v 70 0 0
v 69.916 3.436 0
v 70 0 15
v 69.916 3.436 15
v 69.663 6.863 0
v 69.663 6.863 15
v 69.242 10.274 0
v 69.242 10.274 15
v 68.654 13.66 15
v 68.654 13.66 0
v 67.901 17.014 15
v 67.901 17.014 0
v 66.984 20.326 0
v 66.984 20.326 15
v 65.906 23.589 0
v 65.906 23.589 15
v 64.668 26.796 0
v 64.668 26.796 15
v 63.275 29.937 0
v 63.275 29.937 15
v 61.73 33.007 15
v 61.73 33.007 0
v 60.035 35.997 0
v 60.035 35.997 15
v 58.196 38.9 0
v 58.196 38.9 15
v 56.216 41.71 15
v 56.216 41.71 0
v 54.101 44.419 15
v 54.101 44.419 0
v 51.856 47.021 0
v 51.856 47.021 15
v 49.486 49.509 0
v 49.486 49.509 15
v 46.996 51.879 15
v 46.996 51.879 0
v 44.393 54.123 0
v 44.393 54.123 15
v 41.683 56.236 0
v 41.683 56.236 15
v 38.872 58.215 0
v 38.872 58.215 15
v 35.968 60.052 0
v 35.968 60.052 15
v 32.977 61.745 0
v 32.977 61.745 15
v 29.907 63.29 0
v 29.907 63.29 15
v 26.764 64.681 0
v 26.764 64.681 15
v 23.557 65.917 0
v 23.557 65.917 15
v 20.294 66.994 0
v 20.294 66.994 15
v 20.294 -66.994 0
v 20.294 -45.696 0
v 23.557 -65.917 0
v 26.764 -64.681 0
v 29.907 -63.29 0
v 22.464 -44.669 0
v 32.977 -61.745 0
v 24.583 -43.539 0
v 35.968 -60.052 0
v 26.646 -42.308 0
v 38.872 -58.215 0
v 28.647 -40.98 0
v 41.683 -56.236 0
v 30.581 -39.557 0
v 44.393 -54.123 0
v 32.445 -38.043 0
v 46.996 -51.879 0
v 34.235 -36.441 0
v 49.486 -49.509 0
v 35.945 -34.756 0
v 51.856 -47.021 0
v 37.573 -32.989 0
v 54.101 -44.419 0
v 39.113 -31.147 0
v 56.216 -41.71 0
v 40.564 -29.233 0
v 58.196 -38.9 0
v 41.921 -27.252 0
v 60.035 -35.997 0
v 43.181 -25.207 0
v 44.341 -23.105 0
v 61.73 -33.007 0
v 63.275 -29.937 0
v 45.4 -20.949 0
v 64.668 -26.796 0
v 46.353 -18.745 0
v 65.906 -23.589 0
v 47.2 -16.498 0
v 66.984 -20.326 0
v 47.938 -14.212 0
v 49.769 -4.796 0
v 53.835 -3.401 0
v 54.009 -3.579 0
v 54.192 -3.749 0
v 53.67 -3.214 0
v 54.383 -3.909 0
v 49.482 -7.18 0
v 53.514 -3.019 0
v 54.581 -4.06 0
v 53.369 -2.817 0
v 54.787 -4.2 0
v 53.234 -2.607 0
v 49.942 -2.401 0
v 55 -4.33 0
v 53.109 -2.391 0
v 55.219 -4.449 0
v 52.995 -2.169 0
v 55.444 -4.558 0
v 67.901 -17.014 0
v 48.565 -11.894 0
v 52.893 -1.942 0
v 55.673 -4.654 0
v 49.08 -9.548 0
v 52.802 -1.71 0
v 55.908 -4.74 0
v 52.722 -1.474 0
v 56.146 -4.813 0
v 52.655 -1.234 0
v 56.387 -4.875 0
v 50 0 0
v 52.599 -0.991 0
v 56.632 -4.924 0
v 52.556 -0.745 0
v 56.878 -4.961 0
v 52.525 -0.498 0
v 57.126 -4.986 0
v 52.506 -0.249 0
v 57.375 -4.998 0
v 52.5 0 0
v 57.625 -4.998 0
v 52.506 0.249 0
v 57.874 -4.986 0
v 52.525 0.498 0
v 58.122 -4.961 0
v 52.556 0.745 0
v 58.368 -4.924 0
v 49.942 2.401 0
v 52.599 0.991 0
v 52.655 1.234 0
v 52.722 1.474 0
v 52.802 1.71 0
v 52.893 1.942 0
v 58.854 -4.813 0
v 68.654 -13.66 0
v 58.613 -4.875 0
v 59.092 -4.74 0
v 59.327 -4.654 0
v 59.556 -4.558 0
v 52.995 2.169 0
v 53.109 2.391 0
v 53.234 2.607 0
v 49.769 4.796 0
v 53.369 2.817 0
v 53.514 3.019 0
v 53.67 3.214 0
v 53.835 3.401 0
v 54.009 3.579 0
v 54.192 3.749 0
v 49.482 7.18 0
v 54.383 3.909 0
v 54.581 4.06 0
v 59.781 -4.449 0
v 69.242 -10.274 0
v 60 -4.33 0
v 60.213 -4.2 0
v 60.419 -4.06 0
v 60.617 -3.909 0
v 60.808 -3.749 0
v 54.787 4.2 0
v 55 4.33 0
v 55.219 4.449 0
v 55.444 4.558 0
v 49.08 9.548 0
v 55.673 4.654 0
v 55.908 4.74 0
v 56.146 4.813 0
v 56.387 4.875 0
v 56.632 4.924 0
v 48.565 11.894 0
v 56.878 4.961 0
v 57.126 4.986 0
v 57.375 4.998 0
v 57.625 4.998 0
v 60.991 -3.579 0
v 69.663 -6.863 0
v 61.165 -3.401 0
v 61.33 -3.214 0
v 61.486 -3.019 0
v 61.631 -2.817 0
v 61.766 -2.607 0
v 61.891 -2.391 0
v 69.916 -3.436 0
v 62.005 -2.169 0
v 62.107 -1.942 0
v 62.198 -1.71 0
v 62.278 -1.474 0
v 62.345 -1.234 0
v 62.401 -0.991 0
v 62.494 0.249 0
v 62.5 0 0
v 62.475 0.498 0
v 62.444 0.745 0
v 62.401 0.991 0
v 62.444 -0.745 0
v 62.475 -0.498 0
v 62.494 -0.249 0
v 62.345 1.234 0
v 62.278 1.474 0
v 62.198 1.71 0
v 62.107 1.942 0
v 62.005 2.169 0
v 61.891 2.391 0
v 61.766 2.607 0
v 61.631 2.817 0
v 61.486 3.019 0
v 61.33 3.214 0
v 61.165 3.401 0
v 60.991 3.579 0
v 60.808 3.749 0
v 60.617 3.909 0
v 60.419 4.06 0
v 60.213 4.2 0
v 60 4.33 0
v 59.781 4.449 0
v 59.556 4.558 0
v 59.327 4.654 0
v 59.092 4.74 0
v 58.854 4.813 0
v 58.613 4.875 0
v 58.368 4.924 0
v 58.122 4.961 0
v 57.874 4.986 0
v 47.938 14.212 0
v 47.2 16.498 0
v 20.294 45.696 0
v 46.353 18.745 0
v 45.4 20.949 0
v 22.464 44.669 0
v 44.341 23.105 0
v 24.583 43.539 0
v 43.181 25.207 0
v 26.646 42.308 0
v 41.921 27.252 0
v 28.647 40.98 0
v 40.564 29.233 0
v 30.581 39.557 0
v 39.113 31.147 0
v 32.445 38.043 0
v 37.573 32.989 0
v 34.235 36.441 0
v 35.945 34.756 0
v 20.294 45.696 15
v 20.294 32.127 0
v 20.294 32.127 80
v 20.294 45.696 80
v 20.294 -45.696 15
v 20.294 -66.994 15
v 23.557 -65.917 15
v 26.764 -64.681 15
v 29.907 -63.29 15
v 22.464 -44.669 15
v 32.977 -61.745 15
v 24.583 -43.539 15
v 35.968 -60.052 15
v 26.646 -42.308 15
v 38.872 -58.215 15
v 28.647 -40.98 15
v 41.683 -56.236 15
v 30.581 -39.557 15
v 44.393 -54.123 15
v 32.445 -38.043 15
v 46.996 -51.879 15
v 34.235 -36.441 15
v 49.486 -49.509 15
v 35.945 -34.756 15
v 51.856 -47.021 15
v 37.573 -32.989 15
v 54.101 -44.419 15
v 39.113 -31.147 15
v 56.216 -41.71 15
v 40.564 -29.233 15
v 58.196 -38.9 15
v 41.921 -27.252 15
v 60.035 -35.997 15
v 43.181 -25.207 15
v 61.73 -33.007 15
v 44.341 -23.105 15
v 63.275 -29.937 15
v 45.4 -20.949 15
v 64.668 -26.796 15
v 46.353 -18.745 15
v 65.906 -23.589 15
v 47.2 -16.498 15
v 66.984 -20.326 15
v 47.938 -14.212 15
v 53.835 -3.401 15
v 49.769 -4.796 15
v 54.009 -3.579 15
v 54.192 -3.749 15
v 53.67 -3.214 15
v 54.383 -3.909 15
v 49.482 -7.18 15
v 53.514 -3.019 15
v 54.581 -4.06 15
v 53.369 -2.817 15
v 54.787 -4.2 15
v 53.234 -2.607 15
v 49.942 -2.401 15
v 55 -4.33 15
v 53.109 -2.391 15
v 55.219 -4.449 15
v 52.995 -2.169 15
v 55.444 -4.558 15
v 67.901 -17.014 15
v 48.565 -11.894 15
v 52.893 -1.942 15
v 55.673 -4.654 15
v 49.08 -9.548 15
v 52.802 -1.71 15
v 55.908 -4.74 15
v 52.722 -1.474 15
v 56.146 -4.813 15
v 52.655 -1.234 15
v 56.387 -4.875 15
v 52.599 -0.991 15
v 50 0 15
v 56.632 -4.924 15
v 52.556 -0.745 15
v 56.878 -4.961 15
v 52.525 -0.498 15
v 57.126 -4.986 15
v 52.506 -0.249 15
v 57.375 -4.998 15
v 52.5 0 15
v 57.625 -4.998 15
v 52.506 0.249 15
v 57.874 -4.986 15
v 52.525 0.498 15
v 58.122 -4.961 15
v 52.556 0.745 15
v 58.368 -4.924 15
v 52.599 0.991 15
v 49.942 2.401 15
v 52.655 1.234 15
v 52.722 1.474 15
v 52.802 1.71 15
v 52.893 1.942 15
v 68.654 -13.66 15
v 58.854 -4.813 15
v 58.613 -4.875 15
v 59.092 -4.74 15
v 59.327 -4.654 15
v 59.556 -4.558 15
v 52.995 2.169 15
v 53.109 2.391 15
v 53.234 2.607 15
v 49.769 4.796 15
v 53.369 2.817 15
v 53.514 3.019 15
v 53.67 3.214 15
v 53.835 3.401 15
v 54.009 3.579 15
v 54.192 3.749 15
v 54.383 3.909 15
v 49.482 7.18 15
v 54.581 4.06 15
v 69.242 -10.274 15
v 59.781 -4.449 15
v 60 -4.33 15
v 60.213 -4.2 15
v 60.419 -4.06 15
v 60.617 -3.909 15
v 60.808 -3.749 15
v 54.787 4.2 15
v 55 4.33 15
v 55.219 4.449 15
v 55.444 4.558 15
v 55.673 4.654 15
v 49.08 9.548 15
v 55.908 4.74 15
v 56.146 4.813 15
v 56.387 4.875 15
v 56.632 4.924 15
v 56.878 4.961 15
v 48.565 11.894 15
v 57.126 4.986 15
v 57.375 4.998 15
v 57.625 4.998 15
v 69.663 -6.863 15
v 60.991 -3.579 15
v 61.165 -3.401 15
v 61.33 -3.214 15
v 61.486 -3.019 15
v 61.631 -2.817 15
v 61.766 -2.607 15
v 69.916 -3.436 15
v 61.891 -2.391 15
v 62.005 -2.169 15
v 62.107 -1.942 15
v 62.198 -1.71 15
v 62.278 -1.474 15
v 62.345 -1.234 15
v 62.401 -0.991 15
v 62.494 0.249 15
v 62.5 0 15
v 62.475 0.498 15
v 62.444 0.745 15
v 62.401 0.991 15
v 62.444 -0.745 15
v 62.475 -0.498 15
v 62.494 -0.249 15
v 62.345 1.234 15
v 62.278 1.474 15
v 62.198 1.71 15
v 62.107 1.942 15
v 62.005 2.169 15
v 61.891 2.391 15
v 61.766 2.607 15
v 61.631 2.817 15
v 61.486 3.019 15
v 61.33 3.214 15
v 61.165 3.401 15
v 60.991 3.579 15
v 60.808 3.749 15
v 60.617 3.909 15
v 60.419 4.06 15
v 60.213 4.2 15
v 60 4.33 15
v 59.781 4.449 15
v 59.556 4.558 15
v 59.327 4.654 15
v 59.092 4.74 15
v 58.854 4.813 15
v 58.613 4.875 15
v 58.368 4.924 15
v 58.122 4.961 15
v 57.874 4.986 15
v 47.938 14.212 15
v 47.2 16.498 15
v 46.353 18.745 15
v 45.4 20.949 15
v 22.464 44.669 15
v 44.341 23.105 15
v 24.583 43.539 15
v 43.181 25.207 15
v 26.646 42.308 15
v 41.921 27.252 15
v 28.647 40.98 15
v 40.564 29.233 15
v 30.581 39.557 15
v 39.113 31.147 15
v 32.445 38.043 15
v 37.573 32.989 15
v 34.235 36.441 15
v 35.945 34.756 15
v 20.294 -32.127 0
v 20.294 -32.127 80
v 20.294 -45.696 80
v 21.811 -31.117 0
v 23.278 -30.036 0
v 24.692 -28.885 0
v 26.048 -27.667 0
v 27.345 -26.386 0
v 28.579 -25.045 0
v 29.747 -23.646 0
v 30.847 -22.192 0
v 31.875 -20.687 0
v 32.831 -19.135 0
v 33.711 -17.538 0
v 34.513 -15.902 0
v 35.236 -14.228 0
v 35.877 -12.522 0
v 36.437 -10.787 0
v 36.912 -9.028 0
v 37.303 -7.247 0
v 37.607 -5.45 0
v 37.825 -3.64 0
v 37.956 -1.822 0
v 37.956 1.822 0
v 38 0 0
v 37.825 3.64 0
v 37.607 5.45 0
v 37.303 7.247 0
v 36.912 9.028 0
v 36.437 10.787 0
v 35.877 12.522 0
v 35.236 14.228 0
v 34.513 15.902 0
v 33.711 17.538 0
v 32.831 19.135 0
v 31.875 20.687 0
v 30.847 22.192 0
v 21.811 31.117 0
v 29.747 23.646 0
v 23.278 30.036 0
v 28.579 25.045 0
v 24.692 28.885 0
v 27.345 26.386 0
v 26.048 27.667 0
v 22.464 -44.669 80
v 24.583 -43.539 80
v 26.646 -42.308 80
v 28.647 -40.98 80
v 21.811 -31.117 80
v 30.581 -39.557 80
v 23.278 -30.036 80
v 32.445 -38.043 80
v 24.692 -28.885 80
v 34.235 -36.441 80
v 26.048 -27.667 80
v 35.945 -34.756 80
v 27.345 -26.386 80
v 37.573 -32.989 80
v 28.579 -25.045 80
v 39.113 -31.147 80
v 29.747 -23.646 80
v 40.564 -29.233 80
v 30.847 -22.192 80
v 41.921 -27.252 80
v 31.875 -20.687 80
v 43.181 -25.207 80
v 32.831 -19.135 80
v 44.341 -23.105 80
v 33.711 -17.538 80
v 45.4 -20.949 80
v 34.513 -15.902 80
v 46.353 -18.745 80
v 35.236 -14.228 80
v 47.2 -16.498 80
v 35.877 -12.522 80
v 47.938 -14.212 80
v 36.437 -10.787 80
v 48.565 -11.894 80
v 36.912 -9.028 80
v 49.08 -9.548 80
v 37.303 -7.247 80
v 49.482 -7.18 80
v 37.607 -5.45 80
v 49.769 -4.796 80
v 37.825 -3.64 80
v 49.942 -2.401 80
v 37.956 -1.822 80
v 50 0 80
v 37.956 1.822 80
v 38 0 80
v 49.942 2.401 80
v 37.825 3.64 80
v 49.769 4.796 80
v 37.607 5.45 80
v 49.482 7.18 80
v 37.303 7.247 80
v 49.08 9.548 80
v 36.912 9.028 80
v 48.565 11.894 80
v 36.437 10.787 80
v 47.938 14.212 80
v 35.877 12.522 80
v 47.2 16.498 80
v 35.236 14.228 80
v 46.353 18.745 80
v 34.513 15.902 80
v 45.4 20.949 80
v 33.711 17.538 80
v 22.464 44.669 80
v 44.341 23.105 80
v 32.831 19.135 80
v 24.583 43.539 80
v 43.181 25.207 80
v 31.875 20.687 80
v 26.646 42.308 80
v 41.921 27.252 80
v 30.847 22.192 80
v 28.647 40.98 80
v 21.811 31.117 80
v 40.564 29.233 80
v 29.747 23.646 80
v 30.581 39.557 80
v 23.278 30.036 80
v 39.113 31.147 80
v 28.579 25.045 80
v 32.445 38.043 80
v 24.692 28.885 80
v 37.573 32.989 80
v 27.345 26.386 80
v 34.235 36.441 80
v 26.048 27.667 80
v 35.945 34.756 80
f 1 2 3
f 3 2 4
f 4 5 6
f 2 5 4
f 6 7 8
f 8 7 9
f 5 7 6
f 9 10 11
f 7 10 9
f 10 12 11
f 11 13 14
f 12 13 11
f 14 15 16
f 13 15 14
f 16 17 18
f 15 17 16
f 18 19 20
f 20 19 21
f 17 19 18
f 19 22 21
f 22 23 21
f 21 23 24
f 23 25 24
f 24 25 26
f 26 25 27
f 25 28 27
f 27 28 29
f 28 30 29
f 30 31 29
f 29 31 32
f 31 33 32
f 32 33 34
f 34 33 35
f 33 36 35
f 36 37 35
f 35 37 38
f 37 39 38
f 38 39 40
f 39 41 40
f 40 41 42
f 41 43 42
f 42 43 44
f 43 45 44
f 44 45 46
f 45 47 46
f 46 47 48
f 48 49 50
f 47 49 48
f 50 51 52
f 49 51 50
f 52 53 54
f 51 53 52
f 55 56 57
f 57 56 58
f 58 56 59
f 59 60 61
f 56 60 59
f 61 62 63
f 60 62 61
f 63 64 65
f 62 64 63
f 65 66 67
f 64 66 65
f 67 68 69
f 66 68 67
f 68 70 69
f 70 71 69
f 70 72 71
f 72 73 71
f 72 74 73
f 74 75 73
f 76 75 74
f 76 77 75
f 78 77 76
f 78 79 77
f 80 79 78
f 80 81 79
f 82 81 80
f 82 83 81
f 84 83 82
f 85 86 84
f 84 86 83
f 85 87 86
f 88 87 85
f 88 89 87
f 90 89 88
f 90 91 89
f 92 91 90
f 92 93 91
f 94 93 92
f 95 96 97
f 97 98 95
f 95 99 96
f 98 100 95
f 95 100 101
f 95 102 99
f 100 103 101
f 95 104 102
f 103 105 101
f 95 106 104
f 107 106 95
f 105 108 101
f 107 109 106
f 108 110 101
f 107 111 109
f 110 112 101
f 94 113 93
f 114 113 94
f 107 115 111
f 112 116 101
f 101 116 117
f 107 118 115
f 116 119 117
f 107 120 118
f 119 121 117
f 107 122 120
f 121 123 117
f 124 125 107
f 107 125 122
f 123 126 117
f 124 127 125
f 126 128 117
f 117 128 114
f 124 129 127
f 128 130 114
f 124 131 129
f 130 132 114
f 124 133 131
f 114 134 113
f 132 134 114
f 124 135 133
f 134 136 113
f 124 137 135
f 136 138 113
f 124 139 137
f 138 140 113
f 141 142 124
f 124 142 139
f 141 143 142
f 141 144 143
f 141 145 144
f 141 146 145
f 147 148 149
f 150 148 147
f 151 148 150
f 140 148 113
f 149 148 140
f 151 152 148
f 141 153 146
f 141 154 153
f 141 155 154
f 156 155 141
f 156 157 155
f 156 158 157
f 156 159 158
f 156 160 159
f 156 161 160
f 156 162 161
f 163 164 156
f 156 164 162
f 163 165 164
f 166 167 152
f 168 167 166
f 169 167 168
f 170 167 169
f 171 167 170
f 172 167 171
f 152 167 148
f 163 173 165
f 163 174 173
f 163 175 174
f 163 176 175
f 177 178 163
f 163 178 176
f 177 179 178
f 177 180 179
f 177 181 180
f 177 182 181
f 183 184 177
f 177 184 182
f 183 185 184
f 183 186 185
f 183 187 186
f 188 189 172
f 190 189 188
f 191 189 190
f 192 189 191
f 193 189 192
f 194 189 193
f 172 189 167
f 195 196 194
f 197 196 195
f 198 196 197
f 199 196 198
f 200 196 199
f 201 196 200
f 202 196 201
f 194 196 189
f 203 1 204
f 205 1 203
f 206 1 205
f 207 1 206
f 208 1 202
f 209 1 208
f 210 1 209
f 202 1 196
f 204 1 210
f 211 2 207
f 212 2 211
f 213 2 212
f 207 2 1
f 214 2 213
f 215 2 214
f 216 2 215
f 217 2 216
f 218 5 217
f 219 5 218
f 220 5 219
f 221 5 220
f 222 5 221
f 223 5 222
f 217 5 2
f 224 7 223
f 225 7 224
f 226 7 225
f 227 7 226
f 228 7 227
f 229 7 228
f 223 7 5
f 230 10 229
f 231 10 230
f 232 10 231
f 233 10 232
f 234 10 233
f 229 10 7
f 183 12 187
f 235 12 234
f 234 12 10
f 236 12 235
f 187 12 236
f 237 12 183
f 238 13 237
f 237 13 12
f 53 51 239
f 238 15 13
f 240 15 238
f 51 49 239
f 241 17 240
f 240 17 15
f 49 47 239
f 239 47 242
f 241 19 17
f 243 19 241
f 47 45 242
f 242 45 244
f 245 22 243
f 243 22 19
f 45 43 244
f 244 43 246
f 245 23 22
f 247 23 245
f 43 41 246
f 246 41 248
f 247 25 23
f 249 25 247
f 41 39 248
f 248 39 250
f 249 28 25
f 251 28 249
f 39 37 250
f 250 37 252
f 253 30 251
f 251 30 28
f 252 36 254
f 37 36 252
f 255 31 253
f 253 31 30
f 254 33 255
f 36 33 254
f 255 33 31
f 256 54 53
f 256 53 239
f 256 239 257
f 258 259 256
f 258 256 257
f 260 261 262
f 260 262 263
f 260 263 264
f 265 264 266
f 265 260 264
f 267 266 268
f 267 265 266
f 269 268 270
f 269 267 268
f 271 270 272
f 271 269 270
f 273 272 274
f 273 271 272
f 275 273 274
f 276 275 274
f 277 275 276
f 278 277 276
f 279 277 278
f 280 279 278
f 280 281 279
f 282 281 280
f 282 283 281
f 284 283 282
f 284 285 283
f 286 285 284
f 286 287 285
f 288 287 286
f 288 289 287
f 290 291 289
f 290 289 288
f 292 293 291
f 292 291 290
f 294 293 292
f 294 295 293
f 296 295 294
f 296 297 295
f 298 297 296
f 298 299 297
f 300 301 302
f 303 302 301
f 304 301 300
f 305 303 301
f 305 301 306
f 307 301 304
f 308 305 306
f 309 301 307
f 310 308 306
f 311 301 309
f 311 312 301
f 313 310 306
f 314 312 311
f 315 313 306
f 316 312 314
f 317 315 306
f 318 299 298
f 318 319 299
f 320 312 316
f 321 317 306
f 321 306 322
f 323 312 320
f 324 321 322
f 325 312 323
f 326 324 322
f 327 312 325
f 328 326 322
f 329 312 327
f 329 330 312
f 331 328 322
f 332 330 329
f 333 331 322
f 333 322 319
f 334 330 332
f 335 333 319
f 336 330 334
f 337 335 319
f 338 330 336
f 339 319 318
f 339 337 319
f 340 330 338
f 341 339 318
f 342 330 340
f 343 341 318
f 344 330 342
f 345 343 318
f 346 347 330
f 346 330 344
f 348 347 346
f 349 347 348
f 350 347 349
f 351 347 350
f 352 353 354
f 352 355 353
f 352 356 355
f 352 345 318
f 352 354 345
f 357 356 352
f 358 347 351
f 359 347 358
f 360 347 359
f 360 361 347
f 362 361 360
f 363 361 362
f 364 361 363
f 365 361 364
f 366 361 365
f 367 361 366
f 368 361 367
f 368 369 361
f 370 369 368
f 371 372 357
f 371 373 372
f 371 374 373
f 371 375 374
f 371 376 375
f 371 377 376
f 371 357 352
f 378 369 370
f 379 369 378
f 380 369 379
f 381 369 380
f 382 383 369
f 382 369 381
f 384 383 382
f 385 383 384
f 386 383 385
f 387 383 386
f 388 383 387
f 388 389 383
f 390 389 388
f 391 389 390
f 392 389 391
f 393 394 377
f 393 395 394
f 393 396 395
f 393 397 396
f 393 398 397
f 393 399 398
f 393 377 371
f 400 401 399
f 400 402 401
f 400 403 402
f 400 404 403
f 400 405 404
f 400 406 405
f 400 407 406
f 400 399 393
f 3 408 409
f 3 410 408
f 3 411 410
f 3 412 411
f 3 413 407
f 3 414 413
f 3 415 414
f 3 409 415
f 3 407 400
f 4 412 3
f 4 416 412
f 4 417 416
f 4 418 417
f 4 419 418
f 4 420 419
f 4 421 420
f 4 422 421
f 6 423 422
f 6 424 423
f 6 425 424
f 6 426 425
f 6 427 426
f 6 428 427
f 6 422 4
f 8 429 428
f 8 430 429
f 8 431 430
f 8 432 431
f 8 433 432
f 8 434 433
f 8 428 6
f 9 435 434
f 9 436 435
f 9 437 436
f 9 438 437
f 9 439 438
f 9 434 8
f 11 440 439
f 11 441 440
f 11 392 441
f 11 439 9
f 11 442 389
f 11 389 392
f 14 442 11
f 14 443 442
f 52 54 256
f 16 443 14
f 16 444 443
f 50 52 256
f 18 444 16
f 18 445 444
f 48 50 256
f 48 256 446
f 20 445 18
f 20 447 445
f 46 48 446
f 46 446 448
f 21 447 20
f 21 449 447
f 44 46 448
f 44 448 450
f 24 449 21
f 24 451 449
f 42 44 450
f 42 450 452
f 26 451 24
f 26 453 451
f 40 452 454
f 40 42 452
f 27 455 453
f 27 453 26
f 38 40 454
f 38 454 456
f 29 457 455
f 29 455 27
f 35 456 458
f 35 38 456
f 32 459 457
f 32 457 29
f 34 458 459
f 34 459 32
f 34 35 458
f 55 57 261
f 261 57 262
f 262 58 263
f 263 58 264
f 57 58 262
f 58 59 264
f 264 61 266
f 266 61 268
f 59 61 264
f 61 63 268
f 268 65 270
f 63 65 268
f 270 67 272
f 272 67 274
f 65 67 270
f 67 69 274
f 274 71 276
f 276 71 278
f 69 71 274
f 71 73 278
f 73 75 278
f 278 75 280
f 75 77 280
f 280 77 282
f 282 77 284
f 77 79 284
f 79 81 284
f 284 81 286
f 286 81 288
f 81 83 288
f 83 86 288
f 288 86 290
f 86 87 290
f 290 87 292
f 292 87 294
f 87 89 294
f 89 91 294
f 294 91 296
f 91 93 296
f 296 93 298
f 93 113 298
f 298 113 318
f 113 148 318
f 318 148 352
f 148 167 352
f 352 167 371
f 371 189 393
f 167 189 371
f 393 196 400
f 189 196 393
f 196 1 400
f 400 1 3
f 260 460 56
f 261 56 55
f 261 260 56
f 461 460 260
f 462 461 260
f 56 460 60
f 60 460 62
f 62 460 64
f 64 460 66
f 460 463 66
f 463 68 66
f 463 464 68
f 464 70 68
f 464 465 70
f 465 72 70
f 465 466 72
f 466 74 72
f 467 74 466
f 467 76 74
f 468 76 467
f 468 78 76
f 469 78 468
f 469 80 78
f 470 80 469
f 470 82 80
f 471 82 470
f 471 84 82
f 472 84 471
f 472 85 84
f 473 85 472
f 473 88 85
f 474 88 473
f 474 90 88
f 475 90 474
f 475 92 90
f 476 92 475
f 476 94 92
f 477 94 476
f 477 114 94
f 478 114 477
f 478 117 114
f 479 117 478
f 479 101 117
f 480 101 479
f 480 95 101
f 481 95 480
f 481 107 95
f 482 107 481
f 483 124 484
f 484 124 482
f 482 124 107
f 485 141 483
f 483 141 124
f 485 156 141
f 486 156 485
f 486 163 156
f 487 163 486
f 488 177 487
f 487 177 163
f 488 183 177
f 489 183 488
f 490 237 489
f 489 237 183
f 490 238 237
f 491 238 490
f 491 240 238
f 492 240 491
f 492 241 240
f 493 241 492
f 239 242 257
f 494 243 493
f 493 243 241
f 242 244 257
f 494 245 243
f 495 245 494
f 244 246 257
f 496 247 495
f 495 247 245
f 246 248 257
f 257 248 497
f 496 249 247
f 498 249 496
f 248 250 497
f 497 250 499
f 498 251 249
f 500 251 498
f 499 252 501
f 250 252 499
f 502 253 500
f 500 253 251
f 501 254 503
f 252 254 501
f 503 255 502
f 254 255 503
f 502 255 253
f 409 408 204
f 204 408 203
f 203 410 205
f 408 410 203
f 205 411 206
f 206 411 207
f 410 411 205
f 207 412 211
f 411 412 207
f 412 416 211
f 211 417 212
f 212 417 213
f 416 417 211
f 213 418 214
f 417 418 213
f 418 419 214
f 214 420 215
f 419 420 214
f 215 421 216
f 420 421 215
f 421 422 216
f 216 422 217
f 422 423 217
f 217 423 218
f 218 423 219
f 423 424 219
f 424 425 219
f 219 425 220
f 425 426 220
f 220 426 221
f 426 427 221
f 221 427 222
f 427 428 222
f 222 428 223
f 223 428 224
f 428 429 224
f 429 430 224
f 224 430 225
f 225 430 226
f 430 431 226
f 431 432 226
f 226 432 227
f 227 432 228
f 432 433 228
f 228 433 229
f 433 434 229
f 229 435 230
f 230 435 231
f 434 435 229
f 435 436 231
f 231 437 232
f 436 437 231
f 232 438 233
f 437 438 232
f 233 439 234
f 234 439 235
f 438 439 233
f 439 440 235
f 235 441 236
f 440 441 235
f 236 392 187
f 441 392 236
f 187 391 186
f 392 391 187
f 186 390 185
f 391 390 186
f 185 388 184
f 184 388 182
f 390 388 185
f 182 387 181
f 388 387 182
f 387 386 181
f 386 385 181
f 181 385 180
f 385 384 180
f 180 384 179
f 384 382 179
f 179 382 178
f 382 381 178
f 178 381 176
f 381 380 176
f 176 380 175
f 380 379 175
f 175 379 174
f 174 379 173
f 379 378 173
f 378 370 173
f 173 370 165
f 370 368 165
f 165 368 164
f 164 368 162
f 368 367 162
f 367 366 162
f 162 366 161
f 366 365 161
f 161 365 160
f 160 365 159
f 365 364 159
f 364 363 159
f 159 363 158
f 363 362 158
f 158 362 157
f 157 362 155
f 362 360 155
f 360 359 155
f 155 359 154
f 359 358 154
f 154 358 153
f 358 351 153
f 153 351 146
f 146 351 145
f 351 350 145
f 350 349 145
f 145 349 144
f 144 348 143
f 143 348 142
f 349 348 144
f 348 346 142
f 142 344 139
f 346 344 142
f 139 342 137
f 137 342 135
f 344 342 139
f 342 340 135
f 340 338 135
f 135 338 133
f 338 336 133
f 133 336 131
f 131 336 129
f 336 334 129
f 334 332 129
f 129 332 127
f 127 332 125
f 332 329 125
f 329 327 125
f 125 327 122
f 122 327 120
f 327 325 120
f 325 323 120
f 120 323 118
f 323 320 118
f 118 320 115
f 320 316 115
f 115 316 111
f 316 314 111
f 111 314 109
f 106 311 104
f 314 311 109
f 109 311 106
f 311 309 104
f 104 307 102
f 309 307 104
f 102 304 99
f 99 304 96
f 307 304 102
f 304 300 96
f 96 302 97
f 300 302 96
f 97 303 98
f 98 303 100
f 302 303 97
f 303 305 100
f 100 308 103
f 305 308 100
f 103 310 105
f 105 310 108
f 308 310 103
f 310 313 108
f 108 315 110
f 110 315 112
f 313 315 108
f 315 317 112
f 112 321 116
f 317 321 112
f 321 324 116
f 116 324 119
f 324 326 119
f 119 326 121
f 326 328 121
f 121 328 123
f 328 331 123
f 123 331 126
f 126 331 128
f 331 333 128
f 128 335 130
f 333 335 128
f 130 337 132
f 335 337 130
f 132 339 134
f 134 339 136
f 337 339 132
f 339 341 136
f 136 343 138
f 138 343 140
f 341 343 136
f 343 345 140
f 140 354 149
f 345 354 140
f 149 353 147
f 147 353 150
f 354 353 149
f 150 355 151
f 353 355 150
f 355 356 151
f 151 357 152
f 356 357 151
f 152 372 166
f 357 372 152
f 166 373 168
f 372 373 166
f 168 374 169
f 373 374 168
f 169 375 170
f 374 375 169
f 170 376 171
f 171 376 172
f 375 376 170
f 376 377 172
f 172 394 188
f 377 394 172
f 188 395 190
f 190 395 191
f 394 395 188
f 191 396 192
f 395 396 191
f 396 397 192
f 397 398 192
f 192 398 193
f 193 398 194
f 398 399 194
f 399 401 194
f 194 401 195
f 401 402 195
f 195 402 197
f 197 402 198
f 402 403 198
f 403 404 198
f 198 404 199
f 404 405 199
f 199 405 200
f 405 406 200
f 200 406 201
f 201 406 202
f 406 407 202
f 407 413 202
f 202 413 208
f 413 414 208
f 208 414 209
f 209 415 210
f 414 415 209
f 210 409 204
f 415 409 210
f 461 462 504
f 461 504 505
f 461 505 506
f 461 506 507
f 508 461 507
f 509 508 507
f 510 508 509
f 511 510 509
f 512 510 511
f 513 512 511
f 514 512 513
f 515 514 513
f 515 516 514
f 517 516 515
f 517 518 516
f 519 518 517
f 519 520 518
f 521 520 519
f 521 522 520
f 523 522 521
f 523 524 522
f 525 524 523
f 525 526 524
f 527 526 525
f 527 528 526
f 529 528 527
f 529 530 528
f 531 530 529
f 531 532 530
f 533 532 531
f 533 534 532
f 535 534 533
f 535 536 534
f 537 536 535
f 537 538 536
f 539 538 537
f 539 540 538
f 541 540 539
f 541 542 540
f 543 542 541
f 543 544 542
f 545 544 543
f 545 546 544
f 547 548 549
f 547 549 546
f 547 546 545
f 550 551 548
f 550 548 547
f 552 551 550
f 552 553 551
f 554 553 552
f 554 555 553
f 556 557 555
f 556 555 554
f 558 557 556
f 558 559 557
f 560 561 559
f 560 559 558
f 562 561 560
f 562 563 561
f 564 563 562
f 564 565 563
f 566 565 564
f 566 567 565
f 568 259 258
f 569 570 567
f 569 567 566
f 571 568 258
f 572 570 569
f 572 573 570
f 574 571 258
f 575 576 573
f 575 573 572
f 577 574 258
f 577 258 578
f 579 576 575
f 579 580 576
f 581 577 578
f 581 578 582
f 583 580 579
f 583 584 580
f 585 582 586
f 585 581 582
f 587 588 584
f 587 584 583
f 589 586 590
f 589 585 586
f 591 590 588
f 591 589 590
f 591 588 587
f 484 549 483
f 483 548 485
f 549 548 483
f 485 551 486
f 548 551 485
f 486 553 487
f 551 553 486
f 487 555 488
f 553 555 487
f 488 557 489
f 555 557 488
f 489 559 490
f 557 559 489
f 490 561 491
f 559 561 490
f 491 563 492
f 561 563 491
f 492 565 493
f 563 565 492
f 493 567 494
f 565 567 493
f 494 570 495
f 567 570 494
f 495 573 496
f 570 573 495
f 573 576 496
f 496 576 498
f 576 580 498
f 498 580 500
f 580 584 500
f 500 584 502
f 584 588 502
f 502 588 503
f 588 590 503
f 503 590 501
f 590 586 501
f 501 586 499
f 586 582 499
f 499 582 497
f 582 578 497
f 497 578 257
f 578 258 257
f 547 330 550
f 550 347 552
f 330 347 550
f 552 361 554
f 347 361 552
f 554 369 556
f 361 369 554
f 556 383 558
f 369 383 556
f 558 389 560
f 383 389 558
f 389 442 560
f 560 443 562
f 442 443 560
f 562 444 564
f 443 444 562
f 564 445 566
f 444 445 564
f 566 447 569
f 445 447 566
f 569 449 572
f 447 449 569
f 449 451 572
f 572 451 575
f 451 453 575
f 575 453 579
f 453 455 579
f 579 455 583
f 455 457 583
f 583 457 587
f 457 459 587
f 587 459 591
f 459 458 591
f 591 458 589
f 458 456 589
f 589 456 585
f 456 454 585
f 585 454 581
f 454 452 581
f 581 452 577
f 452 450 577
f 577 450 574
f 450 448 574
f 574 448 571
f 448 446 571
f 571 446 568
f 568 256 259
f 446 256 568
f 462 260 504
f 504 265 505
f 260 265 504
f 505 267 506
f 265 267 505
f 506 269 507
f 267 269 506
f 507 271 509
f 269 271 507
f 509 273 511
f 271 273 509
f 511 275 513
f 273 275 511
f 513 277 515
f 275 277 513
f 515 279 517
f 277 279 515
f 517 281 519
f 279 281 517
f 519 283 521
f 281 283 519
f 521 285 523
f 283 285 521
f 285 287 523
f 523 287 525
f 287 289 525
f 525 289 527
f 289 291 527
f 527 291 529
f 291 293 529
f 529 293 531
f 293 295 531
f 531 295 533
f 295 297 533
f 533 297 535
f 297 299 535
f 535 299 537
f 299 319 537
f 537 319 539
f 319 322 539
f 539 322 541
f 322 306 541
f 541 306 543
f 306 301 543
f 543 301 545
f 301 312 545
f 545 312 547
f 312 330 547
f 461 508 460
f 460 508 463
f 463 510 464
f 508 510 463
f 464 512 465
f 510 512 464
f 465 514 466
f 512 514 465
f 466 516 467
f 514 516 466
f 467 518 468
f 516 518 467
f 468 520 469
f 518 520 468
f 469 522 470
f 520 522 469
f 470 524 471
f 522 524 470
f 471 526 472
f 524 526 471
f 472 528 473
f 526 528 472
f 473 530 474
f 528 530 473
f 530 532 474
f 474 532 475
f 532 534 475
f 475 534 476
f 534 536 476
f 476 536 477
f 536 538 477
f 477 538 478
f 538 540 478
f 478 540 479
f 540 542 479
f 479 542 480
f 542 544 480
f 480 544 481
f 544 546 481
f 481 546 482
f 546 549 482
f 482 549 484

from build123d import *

# Parameters (mm, degrees)
SKETCH_R        = 70
PAD_DEPTH       = 15
SKETCH001_R     = 50
PAD001_DEPTH    = 80
SKETCH002_R     = 38
POCKET_DEPTH    = 150
SKETCH003_R     = 5
POCKET001_DEPTH = 100
SKETCH004_W     = 113.045652
SKETCH004_H     = 208.901421
POCKET002_DEPTH = 150


with BuildPart() as part:
    # Sketch → Pad (new body)
    with BuildSketch(Plane.XY):
        Circle(SKETCH_R)
    extrude(amount=PAD_DEPTH)

    # Sketch001 → Pad001 (join)
    with BuildSketch(Plane.XY):
        Circle(SKETCH001_R)
    extrude(amount=PAD001_DEPTH)

    # Sketch002 (on Face6 of Pad001) → Pocket (cut)
    with BuildSketch(Plane.XY.offset(80)):
        Circle(SKETCH002_R)
    extrude(amount=-POCKET_DEPTH, mode=Mode.SUBTRACT)

    # Sketch003 (on Face3 of Pocket) → Pocket001 (cut)
    with BuildSketch(Plane.XY.offset(15)):
        with Locations((57.5, 0)):
            Circle(SKETCH003_R)
    extrude(amount=-POCKET001_DEPTH, mode=Mode.SUBTRACT)

    # Sketch004 (on DatumPlane) → Pocket002 (cut)
    with BuildSketch(Plane.XY.offset(80)):
        with Locations((-36.229188, 6.106403)):
            Rectangle(SKETCH004_W, SKETCH004_H)
    extrude(amount=-POCKET002_DEPTH, mode=Mode.SUBTRACT)


solid = part.part
